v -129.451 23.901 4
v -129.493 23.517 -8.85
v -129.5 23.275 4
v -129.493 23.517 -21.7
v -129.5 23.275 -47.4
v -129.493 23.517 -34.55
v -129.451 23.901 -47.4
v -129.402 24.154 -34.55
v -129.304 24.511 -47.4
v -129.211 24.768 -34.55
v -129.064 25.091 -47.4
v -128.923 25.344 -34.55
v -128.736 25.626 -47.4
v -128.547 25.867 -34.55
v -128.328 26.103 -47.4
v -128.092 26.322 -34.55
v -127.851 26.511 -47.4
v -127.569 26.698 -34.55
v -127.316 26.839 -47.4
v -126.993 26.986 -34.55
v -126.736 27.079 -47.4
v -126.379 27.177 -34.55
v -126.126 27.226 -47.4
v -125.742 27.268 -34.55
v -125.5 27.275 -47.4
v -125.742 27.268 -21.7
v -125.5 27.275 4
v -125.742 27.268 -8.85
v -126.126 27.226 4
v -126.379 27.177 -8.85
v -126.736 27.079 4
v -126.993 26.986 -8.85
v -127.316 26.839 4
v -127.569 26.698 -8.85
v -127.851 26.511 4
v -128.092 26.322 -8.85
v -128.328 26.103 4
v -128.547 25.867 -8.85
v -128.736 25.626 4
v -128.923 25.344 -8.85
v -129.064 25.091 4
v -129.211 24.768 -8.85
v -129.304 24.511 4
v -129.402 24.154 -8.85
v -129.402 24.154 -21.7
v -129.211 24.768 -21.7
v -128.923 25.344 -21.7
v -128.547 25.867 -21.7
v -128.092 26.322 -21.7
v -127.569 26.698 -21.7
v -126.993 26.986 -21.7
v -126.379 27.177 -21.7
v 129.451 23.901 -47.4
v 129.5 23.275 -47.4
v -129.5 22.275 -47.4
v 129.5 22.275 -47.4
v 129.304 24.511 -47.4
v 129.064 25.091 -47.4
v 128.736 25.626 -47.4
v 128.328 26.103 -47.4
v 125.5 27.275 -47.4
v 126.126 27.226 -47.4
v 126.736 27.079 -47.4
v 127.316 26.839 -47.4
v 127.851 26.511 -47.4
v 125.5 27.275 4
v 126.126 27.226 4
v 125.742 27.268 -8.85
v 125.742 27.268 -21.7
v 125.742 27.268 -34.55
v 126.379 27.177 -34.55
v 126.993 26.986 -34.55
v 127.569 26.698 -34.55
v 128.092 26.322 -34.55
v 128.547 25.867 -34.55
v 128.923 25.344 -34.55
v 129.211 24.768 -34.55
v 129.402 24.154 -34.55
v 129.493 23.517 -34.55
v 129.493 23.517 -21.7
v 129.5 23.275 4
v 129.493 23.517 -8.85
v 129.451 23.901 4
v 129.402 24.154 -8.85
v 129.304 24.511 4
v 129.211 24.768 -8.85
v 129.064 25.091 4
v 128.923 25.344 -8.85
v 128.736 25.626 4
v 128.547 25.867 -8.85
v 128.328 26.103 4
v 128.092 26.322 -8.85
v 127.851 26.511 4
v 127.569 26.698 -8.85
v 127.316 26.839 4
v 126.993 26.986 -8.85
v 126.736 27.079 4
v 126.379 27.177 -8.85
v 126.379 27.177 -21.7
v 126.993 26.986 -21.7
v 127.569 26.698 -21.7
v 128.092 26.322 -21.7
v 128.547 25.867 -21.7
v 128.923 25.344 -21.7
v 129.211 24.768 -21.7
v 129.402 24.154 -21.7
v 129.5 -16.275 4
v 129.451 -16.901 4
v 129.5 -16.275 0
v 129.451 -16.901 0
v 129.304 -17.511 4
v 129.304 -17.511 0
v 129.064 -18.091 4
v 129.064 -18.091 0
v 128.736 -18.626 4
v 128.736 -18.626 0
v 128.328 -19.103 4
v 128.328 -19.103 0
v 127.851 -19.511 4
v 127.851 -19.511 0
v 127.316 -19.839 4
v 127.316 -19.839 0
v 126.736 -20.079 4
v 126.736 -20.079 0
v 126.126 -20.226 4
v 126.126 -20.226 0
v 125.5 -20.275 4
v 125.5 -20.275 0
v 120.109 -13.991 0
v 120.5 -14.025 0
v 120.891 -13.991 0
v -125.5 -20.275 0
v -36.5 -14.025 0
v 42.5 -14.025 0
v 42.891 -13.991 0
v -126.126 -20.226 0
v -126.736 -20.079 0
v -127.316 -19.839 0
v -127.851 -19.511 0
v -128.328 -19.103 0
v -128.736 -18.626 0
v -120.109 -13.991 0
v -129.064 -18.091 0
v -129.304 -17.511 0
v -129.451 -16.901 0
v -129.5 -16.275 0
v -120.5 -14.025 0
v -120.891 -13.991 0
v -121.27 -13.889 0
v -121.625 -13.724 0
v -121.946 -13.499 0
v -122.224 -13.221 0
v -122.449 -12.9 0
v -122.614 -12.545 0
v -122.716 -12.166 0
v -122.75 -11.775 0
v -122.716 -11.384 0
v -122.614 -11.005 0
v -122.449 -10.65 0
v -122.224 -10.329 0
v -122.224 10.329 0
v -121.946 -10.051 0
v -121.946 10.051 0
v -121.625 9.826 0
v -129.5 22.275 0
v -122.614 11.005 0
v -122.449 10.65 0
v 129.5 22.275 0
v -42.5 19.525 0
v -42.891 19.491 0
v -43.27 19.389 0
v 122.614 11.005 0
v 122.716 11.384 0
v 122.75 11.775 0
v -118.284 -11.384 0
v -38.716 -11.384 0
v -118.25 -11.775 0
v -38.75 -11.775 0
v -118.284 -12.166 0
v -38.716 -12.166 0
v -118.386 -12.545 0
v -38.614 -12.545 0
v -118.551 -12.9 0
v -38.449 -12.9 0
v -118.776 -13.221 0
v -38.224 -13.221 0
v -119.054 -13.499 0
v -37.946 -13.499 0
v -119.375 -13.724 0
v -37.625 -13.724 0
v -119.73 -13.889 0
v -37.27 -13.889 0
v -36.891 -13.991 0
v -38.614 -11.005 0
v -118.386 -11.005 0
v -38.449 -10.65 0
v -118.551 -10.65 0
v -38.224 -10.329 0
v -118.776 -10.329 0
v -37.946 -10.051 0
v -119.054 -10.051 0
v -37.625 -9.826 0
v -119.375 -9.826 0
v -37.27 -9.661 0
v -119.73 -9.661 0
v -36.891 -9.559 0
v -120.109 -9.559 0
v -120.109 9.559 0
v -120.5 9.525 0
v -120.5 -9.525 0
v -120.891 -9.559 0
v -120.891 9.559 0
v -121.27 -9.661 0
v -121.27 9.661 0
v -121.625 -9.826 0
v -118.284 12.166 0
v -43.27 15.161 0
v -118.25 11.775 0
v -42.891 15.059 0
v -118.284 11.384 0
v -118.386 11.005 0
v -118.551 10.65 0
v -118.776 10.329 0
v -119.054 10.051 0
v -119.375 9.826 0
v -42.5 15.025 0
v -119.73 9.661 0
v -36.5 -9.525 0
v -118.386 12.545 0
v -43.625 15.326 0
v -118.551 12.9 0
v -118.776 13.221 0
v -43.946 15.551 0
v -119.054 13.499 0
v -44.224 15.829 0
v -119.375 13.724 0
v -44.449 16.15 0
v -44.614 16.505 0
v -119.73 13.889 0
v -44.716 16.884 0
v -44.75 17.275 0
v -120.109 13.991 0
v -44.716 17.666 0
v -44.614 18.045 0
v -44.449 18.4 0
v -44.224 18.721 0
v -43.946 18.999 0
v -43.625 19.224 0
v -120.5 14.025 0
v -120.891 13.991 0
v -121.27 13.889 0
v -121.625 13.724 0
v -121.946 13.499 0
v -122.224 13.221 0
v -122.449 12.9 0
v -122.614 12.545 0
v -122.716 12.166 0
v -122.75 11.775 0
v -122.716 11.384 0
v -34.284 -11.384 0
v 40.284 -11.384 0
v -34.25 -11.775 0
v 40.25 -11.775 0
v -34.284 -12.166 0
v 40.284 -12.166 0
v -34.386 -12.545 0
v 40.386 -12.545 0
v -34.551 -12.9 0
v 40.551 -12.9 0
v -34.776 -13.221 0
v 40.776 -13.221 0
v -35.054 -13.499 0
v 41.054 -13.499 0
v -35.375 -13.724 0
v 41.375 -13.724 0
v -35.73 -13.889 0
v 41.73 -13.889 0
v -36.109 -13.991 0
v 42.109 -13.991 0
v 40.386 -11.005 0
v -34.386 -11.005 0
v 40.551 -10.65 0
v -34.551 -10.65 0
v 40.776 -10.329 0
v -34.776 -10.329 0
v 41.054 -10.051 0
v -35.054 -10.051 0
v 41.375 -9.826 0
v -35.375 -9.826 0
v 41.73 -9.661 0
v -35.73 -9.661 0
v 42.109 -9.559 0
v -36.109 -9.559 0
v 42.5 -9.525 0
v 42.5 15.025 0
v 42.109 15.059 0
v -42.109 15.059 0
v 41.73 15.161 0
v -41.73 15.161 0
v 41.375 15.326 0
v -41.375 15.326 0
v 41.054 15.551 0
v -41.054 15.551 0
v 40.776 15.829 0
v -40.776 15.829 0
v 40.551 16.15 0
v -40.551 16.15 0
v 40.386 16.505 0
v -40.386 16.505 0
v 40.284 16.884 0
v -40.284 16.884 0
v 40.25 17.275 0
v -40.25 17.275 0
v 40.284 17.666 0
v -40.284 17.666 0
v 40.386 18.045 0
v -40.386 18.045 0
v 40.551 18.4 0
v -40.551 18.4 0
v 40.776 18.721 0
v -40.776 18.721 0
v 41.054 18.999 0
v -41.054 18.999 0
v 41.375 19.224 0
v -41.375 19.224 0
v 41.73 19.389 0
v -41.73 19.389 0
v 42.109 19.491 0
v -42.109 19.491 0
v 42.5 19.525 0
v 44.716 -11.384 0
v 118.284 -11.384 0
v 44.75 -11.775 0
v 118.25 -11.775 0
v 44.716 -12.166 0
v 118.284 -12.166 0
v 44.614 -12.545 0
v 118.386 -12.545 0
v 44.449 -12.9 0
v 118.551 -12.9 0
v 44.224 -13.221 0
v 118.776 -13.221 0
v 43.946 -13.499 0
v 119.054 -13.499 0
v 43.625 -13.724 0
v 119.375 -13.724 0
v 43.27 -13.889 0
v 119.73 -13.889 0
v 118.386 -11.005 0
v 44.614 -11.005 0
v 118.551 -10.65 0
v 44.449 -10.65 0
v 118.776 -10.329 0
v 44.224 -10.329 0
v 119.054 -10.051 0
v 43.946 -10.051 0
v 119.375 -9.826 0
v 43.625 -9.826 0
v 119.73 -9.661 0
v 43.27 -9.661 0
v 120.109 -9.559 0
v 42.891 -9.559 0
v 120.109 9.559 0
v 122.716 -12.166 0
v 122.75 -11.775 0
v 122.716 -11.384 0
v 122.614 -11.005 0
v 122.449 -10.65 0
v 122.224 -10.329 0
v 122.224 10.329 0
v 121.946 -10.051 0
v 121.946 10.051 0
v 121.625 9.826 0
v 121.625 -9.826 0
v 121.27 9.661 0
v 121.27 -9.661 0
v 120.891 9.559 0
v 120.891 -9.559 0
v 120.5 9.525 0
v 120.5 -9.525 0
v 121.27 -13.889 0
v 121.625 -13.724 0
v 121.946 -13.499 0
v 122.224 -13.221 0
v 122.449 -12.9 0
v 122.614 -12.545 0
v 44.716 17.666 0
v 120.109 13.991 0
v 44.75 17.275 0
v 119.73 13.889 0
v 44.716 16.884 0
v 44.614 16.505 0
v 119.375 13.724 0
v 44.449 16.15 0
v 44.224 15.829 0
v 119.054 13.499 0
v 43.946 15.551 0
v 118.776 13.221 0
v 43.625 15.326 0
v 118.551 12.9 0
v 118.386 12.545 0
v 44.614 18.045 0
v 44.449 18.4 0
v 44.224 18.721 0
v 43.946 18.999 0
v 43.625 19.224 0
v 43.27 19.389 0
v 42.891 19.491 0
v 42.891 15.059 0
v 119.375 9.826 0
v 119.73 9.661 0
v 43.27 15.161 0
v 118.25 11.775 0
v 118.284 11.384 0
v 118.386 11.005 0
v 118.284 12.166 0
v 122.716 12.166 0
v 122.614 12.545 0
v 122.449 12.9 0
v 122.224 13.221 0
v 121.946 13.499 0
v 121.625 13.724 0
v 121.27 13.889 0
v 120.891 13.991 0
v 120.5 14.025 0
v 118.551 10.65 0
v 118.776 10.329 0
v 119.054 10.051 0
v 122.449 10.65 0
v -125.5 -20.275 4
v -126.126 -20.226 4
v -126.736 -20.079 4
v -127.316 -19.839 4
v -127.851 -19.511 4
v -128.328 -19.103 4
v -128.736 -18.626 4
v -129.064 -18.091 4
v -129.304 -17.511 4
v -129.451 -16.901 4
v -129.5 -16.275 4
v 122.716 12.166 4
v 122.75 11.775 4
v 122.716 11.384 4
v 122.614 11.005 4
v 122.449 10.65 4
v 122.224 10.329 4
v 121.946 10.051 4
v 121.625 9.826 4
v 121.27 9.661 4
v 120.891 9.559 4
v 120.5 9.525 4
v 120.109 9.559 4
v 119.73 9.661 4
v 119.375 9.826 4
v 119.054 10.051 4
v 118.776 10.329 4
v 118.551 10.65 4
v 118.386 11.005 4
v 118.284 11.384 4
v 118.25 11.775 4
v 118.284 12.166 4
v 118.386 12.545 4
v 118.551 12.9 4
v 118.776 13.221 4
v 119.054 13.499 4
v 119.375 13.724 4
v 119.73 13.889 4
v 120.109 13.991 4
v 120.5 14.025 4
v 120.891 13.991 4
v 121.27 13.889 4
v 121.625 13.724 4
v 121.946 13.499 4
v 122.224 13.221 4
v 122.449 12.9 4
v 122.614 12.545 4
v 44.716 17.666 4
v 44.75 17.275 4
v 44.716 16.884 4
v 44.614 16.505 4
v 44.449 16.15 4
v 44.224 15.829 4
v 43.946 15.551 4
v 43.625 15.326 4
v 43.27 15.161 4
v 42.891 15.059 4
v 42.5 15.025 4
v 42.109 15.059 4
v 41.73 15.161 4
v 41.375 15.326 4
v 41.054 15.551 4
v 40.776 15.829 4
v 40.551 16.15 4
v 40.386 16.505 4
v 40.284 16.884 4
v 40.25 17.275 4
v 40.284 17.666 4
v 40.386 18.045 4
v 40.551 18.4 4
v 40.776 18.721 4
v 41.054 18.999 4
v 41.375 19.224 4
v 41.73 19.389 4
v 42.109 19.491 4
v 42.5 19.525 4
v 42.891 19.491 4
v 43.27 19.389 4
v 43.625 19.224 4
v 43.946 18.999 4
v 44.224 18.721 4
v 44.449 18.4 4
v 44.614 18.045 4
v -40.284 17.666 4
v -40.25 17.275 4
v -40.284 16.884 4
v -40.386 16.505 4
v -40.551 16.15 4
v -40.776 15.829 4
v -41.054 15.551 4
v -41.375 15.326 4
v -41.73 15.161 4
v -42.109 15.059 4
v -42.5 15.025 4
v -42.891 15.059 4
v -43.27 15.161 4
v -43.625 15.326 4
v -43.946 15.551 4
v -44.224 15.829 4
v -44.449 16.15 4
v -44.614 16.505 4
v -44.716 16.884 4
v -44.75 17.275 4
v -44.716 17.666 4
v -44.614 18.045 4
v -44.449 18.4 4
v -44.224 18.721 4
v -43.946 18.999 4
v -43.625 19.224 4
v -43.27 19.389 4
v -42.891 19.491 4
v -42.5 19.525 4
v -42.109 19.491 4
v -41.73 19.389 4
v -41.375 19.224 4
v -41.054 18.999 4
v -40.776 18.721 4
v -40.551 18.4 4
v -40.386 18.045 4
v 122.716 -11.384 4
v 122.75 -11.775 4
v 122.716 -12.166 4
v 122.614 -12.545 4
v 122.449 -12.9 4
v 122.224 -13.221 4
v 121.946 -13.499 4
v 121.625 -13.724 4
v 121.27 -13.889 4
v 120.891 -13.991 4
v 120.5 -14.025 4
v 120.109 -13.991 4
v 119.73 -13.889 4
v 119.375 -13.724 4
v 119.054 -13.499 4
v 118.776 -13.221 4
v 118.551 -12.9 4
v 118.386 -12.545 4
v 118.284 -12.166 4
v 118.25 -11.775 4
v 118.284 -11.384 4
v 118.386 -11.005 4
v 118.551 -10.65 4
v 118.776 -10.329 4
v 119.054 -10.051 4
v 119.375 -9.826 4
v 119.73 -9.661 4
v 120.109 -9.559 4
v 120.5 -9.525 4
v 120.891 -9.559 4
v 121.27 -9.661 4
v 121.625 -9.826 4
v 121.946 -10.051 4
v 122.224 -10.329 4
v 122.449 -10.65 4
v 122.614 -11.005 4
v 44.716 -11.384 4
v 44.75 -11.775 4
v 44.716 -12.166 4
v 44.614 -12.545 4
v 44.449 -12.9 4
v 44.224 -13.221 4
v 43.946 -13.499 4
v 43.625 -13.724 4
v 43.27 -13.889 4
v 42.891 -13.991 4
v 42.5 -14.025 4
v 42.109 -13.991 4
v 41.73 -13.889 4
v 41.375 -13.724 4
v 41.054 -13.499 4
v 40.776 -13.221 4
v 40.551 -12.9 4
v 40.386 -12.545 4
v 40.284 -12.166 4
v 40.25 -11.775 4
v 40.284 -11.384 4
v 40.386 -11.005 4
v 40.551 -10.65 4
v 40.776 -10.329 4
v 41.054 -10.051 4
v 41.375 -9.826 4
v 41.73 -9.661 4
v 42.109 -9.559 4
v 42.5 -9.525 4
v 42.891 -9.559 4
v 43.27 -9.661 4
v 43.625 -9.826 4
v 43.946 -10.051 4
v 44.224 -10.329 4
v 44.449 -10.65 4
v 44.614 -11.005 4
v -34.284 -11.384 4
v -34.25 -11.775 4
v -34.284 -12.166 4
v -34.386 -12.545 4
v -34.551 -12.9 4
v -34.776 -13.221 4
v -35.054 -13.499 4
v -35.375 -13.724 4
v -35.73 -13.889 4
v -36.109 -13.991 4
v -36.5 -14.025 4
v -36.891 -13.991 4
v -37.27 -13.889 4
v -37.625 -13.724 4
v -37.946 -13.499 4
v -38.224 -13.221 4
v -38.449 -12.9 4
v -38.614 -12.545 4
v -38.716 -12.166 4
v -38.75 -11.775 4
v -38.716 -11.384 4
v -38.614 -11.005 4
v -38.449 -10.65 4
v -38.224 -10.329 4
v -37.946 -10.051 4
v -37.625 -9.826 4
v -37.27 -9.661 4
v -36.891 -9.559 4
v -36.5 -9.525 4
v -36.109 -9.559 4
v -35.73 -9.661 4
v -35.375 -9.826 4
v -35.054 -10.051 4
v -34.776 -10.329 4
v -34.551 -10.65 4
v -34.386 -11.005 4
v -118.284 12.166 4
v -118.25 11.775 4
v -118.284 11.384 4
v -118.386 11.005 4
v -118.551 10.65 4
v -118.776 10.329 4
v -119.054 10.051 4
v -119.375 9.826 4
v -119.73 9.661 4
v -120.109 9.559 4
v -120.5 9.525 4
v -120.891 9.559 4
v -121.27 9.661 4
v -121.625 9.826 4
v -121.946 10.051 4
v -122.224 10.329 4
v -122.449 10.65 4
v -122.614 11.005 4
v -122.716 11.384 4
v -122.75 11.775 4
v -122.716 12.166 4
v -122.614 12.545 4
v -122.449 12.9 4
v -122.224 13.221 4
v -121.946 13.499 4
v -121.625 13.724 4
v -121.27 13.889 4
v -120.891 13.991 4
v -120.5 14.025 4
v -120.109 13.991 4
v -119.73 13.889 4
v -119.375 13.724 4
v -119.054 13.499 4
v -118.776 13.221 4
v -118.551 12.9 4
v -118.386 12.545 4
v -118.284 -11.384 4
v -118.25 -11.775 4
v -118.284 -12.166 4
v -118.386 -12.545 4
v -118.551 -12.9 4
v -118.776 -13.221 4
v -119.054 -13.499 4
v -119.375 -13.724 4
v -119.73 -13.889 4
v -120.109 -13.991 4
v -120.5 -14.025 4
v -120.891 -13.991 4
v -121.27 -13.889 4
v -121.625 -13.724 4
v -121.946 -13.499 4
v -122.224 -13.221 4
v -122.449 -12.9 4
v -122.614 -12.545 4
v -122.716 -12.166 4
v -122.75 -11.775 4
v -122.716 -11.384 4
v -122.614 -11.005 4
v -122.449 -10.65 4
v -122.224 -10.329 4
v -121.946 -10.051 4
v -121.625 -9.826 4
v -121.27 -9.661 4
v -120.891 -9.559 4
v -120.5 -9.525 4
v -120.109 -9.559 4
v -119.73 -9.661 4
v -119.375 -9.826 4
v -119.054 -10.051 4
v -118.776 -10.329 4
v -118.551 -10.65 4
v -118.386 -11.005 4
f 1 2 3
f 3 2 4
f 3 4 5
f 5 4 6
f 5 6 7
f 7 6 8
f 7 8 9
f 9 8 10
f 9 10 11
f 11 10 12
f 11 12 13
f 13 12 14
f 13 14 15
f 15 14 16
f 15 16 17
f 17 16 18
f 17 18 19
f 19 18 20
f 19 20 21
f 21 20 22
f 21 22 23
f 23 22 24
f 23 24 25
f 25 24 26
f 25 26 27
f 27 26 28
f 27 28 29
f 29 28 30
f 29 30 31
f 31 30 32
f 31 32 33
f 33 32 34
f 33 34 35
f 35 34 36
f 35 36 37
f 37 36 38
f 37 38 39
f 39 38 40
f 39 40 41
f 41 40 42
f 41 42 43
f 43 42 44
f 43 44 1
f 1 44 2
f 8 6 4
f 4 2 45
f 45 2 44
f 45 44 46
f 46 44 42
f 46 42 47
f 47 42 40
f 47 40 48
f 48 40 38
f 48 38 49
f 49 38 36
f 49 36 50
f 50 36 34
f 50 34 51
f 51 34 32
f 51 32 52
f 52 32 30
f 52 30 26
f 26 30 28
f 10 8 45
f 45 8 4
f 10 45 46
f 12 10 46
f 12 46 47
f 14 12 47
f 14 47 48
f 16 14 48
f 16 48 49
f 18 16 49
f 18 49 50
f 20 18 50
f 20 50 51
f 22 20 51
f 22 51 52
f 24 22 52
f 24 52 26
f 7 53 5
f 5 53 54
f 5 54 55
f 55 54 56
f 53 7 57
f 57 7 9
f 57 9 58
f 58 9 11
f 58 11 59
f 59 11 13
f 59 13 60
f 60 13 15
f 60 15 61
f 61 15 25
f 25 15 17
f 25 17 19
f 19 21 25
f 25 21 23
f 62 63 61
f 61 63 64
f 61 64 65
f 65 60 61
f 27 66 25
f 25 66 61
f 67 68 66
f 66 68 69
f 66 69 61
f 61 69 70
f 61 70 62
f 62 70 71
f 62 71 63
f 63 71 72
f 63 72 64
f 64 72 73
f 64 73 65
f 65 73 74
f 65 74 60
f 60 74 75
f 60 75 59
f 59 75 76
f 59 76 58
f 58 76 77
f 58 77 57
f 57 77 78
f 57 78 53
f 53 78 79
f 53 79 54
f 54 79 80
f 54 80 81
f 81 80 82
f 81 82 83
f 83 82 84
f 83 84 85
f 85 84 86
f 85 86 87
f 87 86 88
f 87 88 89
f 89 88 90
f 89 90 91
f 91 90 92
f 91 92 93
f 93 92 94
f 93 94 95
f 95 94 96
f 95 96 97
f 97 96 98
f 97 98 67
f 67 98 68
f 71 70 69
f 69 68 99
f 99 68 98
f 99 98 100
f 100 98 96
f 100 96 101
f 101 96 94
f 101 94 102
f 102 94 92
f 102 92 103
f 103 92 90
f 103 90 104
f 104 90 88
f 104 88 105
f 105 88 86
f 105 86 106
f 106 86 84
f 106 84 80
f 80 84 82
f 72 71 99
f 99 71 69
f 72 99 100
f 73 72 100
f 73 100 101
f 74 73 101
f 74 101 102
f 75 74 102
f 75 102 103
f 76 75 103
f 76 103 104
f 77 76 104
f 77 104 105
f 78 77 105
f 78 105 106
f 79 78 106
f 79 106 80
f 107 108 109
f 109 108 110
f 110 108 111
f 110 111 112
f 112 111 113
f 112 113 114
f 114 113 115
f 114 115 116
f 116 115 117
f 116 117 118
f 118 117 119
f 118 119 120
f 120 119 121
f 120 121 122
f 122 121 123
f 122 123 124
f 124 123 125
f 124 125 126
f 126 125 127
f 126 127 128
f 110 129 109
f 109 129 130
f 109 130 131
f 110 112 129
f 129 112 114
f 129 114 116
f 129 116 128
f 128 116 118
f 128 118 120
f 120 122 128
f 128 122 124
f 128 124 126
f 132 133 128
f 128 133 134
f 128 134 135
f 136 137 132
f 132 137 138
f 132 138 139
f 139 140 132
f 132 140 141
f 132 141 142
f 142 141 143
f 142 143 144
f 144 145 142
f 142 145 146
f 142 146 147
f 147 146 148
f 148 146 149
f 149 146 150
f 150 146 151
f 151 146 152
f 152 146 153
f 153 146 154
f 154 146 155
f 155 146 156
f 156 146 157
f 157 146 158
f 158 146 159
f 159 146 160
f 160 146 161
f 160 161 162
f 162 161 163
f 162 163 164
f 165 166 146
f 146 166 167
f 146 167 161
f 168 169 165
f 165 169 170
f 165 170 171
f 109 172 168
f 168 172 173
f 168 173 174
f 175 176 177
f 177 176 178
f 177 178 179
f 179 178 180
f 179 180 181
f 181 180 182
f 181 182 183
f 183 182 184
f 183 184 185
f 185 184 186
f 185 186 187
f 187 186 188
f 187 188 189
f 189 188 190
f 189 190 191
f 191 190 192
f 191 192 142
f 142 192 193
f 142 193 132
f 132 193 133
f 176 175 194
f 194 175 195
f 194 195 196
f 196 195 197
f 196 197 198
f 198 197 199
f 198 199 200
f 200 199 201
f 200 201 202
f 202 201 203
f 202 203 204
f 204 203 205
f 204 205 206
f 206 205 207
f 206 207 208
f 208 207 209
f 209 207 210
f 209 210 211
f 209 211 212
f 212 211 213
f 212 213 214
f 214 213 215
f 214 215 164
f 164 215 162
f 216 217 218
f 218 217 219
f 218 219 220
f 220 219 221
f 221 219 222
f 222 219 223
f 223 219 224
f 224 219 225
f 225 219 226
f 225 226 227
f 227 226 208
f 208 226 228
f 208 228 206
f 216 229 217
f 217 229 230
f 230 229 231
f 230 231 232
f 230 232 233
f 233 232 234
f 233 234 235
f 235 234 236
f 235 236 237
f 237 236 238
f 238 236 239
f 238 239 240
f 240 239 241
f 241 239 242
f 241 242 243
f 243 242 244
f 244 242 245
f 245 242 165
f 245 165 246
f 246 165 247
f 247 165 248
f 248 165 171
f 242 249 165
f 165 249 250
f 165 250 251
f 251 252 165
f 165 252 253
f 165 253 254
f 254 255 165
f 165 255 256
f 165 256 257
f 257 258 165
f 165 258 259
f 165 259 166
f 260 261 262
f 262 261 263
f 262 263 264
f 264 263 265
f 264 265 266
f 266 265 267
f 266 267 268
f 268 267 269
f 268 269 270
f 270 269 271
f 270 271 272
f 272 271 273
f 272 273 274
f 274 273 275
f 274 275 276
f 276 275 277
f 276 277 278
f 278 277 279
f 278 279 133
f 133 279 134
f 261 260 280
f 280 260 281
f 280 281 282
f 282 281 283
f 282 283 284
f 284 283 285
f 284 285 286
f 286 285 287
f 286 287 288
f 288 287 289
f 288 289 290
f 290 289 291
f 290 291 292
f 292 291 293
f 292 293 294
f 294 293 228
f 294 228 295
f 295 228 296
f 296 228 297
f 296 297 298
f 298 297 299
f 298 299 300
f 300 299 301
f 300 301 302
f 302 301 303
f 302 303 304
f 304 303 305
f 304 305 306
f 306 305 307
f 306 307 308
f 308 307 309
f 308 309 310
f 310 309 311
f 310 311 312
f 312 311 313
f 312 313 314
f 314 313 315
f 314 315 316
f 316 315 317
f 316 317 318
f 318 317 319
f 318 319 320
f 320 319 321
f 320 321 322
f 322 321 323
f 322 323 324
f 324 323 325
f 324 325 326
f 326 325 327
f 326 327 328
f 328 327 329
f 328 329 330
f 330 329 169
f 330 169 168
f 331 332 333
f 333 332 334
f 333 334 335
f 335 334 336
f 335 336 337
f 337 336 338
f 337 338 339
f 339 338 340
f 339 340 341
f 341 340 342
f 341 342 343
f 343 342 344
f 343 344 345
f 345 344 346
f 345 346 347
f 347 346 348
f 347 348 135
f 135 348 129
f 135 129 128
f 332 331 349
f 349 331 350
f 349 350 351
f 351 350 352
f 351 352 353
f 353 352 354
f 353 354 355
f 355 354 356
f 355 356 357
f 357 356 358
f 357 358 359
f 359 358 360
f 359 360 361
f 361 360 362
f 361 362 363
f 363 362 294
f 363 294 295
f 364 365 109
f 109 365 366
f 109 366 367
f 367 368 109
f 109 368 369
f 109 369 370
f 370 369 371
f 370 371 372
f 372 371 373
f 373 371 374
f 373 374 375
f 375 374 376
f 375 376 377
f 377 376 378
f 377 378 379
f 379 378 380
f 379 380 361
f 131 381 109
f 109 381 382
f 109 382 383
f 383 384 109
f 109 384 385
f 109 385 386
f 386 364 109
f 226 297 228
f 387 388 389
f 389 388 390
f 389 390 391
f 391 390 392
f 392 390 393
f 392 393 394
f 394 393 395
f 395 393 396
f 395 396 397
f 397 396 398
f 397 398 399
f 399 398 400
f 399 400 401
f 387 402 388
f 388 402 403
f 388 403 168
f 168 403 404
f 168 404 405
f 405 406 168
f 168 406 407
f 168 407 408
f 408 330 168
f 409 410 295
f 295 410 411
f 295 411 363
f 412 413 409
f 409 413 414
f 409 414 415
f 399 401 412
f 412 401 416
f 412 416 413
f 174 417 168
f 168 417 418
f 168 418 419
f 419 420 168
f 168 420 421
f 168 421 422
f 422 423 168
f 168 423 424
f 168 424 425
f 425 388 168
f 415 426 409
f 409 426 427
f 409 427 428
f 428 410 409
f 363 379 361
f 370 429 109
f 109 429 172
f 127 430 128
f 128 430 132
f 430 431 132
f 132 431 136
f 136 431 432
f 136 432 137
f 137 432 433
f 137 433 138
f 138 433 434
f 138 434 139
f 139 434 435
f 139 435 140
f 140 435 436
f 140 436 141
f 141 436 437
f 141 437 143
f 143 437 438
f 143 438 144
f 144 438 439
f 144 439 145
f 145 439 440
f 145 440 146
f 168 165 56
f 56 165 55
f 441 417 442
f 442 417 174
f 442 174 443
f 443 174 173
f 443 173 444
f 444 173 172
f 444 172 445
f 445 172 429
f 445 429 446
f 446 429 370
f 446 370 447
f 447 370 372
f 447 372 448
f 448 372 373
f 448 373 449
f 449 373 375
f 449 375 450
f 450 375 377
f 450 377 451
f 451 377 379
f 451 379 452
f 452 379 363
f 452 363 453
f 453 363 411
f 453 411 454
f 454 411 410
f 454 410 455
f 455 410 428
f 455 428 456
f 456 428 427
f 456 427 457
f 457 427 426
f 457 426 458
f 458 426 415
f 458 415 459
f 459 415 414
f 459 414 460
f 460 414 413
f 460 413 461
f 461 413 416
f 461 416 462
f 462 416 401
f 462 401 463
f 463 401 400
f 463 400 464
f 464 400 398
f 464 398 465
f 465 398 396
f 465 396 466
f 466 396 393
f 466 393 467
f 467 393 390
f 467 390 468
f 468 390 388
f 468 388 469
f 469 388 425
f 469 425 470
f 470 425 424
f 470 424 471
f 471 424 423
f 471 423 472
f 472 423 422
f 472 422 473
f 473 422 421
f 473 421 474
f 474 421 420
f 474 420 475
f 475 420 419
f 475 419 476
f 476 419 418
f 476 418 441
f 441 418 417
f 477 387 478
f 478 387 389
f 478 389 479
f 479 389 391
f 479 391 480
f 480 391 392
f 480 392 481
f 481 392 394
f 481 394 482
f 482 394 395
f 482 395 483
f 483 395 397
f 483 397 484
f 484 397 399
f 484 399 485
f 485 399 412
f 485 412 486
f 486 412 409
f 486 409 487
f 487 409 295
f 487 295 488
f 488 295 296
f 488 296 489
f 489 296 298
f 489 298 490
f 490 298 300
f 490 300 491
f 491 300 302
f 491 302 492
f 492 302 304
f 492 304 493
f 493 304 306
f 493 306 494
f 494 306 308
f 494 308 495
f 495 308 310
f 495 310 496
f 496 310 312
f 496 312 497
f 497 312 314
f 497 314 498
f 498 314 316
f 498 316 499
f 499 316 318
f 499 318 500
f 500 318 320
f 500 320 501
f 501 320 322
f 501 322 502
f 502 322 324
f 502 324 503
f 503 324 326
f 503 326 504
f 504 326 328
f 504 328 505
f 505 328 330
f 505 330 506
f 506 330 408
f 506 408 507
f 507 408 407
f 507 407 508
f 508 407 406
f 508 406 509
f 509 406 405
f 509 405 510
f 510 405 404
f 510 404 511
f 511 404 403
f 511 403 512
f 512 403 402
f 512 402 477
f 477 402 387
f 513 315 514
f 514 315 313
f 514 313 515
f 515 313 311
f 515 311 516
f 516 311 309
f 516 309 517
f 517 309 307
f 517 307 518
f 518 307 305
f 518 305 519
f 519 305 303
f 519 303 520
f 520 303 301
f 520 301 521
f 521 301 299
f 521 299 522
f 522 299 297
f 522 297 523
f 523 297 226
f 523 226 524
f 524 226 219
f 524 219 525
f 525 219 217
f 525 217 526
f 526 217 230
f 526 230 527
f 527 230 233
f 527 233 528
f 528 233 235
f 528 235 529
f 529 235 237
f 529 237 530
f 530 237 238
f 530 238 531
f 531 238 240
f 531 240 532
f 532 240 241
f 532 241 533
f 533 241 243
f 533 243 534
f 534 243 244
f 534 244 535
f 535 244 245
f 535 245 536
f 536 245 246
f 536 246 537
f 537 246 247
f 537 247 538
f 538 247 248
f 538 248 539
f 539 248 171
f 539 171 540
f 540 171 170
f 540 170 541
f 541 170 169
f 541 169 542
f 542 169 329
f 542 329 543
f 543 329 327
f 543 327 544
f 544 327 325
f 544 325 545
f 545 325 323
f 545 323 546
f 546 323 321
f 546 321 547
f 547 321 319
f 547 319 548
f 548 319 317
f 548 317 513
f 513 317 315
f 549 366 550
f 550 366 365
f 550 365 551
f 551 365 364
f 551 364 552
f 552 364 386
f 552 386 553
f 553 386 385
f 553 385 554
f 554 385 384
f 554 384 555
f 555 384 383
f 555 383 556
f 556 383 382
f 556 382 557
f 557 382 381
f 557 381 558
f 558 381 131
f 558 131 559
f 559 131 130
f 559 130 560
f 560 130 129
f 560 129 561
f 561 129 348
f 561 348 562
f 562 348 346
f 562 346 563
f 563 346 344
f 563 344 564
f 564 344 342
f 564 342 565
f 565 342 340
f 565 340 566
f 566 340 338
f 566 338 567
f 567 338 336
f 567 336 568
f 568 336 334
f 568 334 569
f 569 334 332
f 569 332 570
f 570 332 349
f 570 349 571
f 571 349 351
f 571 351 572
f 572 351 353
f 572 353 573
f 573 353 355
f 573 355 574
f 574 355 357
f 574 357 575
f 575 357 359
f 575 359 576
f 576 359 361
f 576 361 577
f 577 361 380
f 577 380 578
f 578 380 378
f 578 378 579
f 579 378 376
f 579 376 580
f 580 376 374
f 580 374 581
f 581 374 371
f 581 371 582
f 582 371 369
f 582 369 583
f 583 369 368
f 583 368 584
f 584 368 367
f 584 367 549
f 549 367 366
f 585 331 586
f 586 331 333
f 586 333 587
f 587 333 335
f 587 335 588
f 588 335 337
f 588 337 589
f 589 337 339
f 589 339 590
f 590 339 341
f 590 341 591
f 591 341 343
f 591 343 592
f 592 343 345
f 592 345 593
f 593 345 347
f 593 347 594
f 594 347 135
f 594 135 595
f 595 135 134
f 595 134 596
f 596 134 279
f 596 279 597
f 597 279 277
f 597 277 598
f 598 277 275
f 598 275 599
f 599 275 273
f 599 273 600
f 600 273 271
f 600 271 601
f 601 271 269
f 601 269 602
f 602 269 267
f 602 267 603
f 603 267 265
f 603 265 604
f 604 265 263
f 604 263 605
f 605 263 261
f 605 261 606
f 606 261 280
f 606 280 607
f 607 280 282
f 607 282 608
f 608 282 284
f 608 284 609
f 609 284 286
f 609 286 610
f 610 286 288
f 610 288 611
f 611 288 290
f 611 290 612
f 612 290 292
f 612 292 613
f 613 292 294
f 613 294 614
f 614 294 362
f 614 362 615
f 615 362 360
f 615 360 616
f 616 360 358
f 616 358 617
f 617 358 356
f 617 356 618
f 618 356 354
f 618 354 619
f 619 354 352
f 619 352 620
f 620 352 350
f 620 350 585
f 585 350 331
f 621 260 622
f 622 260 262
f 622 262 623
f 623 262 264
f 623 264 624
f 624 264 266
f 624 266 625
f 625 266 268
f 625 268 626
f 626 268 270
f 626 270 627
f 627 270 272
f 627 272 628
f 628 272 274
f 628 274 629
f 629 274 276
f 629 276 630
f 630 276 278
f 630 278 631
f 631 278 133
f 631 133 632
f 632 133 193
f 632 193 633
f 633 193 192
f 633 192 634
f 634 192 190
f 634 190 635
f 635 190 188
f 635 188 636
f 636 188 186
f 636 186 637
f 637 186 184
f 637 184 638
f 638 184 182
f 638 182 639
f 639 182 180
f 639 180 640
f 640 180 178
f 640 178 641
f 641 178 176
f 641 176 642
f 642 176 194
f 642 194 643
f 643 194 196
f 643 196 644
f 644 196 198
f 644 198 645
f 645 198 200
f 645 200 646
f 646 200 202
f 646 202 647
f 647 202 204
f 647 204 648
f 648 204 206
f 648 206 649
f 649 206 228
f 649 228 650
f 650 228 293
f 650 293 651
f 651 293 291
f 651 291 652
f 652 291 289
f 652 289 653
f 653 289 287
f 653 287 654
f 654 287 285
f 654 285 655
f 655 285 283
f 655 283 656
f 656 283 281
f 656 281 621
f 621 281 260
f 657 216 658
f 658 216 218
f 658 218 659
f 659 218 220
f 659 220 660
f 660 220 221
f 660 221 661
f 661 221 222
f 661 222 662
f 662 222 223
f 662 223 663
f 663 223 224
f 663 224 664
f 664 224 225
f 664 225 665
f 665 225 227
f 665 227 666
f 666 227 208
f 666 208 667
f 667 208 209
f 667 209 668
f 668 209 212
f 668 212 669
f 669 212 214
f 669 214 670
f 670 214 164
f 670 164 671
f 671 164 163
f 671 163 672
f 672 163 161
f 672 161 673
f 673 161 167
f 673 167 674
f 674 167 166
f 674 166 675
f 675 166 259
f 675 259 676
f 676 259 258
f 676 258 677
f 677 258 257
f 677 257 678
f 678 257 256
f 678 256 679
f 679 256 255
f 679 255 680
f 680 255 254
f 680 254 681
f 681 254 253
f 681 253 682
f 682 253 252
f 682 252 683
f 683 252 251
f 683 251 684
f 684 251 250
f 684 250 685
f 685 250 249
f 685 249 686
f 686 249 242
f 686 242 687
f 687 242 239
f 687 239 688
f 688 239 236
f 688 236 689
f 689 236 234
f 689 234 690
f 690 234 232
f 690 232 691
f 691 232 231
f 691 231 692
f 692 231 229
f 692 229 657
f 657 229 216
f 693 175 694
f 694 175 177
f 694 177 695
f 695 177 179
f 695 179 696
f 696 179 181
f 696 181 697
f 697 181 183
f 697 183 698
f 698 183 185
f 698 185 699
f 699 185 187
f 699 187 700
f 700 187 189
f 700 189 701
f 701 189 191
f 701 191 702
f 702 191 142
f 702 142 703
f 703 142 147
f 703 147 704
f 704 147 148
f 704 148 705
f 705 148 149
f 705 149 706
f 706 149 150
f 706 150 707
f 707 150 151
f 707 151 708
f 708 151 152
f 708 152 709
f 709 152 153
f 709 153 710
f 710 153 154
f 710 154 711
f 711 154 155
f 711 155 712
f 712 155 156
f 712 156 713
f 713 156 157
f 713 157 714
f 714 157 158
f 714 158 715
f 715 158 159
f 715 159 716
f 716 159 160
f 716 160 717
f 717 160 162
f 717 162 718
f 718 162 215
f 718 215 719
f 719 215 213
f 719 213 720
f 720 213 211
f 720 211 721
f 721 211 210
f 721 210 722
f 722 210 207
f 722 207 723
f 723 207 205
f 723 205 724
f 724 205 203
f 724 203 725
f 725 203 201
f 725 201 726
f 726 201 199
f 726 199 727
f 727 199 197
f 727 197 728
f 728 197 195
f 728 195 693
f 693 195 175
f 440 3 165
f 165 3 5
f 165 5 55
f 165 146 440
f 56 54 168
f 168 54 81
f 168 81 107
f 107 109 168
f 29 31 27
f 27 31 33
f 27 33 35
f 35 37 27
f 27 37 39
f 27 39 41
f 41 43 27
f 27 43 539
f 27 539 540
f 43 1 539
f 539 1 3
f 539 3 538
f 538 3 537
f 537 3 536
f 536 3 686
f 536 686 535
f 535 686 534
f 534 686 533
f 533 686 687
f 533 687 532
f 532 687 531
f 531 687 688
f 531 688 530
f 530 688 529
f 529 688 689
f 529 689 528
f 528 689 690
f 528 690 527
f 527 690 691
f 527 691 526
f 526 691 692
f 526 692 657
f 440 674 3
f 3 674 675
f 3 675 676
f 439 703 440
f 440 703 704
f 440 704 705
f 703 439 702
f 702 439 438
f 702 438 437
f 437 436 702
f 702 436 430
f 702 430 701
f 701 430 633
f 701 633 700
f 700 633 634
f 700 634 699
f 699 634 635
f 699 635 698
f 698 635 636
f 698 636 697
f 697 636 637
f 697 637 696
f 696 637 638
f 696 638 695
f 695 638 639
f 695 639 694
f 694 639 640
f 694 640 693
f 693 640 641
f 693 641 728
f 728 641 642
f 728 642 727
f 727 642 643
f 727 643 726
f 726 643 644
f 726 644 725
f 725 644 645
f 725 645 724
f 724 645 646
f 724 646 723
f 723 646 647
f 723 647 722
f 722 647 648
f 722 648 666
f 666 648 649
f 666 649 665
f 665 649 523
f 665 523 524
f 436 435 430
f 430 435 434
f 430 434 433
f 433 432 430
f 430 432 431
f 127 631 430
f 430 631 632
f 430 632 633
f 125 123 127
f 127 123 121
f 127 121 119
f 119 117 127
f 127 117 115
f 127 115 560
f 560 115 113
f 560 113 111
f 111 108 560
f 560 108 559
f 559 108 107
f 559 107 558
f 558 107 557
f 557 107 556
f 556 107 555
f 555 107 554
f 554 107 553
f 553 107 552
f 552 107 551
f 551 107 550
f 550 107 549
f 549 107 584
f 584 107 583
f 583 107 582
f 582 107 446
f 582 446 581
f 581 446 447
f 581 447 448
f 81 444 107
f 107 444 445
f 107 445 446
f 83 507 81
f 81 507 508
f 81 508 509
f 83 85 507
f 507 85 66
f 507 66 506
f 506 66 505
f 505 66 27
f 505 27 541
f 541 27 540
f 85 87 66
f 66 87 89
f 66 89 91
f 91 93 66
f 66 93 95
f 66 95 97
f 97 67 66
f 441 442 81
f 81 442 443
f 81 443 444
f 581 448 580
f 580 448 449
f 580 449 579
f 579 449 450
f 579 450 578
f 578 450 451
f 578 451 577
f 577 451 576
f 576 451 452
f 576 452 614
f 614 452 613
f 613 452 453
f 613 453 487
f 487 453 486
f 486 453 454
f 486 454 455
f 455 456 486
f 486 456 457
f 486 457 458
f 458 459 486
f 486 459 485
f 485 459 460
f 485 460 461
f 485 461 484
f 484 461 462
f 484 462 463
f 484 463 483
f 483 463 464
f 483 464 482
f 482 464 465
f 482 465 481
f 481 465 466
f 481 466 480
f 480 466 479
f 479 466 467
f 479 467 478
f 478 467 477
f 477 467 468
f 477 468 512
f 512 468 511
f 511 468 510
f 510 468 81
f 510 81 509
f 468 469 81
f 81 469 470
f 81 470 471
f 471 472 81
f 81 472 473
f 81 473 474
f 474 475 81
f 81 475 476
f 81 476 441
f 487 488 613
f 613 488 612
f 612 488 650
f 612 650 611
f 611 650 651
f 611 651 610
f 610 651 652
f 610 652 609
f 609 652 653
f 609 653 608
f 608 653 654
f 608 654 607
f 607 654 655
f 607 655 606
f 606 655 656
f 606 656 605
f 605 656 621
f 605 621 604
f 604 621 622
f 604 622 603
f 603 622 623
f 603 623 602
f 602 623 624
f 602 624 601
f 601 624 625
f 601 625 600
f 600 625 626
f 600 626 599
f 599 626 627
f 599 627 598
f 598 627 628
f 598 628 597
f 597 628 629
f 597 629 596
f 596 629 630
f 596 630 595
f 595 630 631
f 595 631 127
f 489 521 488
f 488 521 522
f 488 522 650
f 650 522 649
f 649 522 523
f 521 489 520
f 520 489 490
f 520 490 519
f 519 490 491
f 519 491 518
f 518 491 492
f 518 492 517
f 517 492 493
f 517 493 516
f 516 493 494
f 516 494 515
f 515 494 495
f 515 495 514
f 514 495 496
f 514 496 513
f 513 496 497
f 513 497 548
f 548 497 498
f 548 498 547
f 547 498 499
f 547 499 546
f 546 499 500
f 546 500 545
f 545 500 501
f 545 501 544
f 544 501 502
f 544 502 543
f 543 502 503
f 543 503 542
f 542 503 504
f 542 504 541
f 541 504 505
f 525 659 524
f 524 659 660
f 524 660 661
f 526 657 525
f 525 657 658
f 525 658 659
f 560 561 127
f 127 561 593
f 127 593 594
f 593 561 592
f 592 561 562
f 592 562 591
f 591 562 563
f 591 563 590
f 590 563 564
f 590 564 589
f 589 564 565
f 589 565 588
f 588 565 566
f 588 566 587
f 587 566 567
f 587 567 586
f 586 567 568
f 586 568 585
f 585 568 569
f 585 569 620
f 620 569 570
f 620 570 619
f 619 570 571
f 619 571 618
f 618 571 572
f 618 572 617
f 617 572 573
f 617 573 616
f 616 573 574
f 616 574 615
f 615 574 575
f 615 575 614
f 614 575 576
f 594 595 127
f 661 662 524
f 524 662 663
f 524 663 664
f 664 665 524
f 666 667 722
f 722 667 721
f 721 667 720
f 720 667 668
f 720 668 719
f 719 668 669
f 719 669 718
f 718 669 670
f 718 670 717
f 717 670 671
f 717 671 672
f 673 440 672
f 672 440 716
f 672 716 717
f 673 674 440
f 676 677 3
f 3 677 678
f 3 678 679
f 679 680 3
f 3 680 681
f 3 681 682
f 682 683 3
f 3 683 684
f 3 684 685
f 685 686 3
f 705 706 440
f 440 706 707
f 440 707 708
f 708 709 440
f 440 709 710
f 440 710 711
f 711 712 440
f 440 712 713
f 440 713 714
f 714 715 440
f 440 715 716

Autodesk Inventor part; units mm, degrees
ref_plane "YZ Plane" through (0, 0, 0) normal (1, 0, 0) x (0, 1, 0)
ref_plane "XZ Plane" through (0, 0, 0) normal (0, 1, 0) x (-1, 0, 0)
ref_plane "XY Plane" through (0, 0, 0) normal (0, 0, 1) x (1, 0, 0)
sketch "スケッチ1" plane through (0, 0, 0) normal (0, 0, 1) x (1, 0, 0)
  line L0 (-120.5, 11.775) -> (120.5, 11.775) construction
  line L1 (120.5, 11.775) -> (120.5, -11.775) construction
  line L2 (120.5, -11.775) -> (-120.5, -11.775) construction
  line L3 (-120.5, -11.775) -> (-120.5, 11.775) construction
  circle A0 centre (-120.5, -11.775) radius 2.25
  circle A1 centre (-120.5, 11.775) radius 2.25
  circle A2 centre (-36.5, -11.775) radius 2.25
  circle A3 centre (42.5, -11.775) radius 2.25
  circle A4 centre (120.5, -11.775) radius 2.25
  line L4 (-129.5, 22.275) -> (-129.5, -20.275) construction
  line L5 (-129.5, 22.275) -> (129.5, 22.275) construction
  line L6 (129.5, 22.275) -> (129.5, -20.275) construction
  line L7 (129.5, -20.275) -> (-129.5, -20.275) construction
  circle A5 centre (-42.5, 17.275) radius 2.25
  circle A6 centre (42.5, 17.275) radius 2.25
  circle A7 centre (120.5, 11.775) radius 2.25
  line L8 (-129.5, -20.275) -> (129.5, -20.275)
  line L9 (129.5, -20.275) -> (129.5, 27.275)
  line L10 (129.5, 27.275) -> (-129.5, 27.275)
  line L11 (-129.5, 27.275) -> (-129.5, -20.275)
  point P0 (0, 0)
  point P1 (-120.5, 0)
  point P2 (0, 11.775)
  dimension "d0" = 23.55
  dimension "d1" = 84
  dimension "d3" = 79
  dimension "d4" = 78
  dimension "d5" = 4.5
  dimension "d6" = 9
  dimension "d7" = 9
  dimension "d8" = 8.5
  dimension "d9" = 10.5
  dimension "d10" = 5.5
  dimension "d11" = 78.1937
  dimension "d12" = 78.1937
  dimension "d13" = 78
  dimension "d14" = 85
  dimension "d15" = 78
  dimension "d16" = 5
extrude "押し出し1" add sketch "スケッチ1" along normal blind 4
sketch "スケッチ2" plane through (0, 0, 0) normal (0, 0, -1) x (-1, 0, 0)
  line L0 (129.5, 22.275) -> (-129.5, 22.275) construction
  line L1 (-129.5, 22.275) -> (129.5, 22.275)
  line L2 (129.5, 22.275) -> (129.5, 27.275)
  line L3 (129.5, 27.275) -> (-129.5, 27.275)
  line L4 (-129.5, 27.275) -> (-129.5, 22.275)
  line L5 (-129.5, 27.275) -> (129.5, 27.275) construction
  point P0 (0, 0)
extrude "押し出し2" add sketch "スケッチ2" along normal blind 47.4
fillet "フィレット1" radius 4 2 edges at (-129.5, -20.275, 2) (129.5, -20.275, 2)
fillet "フィレット2" [suppressed]
fillet "フィレット3" radius 4 2 edges at (129.5, 27.275, -21.7) (-129.5, 27.275, -21.7)
equation "\"d12\" = d11"
properties part number "kpd_70_cover" material "アルミニウム 6061"
